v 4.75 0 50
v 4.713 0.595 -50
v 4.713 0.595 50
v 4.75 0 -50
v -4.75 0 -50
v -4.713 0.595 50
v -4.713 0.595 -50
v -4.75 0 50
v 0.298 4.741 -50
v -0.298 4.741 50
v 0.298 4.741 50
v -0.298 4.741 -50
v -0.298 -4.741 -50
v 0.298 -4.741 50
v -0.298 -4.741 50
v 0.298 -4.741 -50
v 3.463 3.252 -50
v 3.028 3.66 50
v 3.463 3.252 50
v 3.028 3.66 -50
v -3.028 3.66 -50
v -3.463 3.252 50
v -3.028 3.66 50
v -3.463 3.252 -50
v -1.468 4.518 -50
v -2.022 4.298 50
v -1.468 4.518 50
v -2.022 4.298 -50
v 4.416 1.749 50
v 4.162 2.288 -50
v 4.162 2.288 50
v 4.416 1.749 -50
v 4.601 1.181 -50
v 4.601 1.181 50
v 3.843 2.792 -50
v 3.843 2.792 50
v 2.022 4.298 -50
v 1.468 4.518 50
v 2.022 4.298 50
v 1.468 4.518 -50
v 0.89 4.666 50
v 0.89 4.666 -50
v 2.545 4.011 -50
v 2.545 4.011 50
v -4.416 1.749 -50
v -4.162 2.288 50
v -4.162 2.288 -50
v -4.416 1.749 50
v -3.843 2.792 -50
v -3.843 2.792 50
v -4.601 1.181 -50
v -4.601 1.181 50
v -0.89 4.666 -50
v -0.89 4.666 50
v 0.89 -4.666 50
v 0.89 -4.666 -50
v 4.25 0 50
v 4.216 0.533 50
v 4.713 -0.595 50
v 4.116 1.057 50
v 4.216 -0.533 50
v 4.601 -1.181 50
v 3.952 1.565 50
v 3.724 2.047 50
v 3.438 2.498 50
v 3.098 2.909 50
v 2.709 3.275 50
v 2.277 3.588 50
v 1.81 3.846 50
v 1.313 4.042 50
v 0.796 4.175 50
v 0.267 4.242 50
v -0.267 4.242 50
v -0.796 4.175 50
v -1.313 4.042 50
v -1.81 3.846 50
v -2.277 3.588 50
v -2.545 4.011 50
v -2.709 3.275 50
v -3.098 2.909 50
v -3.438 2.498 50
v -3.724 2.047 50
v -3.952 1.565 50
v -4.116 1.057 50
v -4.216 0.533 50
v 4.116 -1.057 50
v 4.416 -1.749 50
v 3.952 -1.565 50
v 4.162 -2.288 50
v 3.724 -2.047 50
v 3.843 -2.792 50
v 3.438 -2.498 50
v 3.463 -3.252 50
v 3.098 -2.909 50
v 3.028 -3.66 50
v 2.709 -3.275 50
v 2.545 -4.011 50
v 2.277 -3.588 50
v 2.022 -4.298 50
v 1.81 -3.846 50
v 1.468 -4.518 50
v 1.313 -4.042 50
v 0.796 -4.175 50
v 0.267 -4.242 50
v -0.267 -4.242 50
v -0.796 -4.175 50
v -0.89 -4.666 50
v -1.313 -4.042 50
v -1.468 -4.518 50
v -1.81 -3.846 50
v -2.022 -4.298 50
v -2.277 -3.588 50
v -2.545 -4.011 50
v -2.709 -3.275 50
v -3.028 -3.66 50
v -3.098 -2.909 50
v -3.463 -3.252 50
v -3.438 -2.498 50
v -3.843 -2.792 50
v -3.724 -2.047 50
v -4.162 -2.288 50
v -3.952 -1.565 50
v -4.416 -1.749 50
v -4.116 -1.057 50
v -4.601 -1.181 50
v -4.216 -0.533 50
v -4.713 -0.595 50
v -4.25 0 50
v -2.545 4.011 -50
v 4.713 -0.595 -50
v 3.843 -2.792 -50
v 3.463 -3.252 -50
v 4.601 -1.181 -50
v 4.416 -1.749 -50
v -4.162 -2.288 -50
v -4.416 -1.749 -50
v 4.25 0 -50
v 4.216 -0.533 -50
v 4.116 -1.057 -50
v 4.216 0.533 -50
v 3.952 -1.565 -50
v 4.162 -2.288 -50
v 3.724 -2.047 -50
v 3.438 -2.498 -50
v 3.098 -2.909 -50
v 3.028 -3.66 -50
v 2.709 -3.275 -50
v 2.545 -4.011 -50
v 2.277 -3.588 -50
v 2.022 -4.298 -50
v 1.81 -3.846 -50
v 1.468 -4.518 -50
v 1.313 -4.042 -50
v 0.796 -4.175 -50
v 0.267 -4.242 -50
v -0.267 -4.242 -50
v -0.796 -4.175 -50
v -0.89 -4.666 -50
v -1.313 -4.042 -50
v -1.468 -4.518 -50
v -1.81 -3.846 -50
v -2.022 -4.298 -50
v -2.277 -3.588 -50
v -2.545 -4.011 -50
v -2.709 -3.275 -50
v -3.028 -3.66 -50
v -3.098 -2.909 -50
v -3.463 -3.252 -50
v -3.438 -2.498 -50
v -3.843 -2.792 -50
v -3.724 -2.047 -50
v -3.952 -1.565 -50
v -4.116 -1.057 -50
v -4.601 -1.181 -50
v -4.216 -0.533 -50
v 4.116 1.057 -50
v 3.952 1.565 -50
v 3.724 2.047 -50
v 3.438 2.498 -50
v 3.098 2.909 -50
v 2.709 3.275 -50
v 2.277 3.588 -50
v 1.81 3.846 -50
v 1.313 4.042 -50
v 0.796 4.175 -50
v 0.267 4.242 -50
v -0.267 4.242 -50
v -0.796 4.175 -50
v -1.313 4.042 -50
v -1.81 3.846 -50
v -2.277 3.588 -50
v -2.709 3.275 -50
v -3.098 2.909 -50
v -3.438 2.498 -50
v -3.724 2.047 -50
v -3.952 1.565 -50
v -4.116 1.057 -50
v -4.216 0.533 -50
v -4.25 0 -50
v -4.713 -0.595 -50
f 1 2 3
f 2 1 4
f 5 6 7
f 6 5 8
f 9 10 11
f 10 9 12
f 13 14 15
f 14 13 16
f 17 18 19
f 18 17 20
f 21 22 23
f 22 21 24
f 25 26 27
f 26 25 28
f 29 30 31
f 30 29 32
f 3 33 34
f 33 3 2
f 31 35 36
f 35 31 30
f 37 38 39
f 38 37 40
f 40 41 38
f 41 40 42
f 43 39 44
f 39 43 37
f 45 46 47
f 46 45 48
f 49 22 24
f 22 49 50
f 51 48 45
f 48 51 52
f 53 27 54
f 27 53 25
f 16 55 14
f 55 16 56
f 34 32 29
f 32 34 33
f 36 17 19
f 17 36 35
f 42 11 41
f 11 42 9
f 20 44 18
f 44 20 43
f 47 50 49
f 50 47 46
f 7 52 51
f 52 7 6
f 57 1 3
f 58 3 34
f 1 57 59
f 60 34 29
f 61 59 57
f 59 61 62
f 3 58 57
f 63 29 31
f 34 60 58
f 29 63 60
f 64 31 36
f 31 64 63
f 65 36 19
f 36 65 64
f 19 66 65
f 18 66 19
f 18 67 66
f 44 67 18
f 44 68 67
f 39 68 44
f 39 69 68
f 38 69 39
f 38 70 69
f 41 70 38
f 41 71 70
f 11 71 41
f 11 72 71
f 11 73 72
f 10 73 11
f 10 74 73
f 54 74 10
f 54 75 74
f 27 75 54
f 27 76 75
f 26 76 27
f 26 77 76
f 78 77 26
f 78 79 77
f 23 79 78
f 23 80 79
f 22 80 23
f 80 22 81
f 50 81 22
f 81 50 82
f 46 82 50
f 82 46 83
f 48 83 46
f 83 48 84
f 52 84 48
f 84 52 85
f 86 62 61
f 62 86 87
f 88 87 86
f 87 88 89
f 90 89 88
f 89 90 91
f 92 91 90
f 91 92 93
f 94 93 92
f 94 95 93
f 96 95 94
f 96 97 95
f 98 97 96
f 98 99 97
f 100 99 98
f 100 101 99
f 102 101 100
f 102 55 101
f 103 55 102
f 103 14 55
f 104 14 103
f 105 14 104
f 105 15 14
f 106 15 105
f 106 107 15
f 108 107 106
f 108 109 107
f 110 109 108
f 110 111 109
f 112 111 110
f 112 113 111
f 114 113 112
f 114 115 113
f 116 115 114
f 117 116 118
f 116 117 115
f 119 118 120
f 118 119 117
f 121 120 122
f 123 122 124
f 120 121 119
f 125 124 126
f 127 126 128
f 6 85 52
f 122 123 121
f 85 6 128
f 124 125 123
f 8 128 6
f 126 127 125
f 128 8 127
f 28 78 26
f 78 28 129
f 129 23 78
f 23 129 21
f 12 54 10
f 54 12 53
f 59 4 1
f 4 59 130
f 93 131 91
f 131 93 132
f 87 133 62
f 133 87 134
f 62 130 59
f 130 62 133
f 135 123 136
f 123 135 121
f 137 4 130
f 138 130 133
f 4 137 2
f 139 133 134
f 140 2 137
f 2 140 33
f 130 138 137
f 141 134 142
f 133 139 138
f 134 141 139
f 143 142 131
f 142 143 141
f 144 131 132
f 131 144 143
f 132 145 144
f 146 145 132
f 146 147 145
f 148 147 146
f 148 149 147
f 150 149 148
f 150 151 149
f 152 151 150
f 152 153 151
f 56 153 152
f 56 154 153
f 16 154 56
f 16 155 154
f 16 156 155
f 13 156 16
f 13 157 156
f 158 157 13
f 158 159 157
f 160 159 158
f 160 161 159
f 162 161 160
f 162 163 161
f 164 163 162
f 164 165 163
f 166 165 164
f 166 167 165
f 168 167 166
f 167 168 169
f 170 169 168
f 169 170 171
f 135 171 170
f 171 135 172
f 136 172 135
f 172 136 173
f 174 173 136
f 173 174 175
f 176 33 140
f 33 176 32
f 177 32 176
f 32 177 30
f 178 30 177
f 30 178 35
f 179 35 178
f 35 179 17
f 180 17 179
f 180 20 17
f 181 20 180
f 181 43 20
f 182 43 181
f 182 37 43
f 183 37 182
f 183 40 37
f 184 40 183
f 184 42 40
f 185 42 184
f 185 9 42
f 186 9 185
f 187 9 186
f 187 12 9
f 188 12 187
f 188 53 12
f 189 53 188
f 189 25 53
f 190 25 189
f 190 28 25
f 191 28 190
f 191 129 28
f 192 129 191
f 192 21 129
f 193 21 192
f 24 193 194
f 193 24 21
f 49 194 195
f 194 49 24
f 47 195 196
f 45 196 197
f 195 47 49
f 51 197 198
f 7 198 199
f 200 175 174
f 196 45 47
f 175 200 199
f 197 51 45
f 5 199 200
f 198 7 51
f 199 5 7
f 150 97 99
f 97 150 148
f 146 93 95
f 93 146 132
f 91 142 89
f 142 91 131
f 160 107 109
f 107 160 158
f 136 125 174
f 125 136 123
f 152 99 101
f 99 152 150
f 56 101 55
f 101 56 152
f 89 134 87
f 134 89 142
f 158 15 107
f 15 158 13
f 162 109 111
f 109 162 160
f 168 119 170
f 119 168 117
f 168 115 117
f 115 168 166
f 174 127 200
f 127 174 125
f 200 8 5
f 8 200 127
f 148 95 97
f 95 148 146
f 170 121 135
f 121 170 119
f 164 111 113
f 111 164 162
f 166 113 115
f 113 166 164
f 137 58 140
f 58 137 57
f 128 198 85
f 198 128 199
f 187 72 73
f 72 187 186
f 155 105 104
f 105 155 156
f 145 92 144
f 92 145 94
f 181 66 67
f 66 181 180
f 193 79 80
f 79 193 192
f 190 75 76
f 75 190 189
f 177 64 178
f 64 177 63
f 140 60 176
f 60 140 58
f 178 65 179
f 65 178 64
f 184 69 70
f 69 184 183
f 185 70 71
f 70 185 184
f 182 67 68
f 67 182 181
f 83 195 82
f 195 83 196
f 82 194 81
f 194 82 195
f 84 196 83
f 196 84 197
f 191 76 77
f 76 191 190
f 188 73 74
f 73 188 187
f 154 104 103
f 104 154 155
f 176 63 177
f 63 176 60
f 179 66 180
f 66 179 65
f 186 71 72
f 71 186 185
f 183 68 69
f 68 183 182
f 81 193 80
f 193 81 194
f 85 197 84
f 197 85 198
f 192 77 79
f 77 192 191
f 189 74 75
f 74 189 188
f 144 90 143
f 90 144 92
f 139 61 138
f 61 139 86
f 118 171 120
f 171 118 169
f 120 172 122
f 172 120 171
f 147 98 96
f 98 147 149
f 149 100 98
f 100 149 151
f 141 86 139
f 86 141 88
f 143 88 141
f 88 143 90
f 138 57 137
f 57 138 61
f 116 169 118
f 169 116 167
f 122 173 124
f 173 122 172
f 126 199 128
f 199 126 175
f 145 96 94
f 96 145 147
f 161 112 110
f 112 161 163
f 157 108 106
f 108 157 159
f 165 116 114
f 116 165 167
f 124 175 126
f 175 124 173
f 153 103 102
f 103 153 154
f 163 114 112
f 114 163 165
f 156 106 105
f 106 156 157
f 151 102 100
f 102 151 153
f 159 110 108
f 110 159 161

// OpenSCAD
$fn = 50;


difference() {
	union() {
		translate(v = [0, 0, -50.0000000000]) {
			cylinder(h = 100, r = 4.7500000000);
		}
	}
	union() {
		translate(v = [0, 0, -100.0000000000]) {
			cylinder(h = 200, r = 4.2500000000);
		}
	}
}
